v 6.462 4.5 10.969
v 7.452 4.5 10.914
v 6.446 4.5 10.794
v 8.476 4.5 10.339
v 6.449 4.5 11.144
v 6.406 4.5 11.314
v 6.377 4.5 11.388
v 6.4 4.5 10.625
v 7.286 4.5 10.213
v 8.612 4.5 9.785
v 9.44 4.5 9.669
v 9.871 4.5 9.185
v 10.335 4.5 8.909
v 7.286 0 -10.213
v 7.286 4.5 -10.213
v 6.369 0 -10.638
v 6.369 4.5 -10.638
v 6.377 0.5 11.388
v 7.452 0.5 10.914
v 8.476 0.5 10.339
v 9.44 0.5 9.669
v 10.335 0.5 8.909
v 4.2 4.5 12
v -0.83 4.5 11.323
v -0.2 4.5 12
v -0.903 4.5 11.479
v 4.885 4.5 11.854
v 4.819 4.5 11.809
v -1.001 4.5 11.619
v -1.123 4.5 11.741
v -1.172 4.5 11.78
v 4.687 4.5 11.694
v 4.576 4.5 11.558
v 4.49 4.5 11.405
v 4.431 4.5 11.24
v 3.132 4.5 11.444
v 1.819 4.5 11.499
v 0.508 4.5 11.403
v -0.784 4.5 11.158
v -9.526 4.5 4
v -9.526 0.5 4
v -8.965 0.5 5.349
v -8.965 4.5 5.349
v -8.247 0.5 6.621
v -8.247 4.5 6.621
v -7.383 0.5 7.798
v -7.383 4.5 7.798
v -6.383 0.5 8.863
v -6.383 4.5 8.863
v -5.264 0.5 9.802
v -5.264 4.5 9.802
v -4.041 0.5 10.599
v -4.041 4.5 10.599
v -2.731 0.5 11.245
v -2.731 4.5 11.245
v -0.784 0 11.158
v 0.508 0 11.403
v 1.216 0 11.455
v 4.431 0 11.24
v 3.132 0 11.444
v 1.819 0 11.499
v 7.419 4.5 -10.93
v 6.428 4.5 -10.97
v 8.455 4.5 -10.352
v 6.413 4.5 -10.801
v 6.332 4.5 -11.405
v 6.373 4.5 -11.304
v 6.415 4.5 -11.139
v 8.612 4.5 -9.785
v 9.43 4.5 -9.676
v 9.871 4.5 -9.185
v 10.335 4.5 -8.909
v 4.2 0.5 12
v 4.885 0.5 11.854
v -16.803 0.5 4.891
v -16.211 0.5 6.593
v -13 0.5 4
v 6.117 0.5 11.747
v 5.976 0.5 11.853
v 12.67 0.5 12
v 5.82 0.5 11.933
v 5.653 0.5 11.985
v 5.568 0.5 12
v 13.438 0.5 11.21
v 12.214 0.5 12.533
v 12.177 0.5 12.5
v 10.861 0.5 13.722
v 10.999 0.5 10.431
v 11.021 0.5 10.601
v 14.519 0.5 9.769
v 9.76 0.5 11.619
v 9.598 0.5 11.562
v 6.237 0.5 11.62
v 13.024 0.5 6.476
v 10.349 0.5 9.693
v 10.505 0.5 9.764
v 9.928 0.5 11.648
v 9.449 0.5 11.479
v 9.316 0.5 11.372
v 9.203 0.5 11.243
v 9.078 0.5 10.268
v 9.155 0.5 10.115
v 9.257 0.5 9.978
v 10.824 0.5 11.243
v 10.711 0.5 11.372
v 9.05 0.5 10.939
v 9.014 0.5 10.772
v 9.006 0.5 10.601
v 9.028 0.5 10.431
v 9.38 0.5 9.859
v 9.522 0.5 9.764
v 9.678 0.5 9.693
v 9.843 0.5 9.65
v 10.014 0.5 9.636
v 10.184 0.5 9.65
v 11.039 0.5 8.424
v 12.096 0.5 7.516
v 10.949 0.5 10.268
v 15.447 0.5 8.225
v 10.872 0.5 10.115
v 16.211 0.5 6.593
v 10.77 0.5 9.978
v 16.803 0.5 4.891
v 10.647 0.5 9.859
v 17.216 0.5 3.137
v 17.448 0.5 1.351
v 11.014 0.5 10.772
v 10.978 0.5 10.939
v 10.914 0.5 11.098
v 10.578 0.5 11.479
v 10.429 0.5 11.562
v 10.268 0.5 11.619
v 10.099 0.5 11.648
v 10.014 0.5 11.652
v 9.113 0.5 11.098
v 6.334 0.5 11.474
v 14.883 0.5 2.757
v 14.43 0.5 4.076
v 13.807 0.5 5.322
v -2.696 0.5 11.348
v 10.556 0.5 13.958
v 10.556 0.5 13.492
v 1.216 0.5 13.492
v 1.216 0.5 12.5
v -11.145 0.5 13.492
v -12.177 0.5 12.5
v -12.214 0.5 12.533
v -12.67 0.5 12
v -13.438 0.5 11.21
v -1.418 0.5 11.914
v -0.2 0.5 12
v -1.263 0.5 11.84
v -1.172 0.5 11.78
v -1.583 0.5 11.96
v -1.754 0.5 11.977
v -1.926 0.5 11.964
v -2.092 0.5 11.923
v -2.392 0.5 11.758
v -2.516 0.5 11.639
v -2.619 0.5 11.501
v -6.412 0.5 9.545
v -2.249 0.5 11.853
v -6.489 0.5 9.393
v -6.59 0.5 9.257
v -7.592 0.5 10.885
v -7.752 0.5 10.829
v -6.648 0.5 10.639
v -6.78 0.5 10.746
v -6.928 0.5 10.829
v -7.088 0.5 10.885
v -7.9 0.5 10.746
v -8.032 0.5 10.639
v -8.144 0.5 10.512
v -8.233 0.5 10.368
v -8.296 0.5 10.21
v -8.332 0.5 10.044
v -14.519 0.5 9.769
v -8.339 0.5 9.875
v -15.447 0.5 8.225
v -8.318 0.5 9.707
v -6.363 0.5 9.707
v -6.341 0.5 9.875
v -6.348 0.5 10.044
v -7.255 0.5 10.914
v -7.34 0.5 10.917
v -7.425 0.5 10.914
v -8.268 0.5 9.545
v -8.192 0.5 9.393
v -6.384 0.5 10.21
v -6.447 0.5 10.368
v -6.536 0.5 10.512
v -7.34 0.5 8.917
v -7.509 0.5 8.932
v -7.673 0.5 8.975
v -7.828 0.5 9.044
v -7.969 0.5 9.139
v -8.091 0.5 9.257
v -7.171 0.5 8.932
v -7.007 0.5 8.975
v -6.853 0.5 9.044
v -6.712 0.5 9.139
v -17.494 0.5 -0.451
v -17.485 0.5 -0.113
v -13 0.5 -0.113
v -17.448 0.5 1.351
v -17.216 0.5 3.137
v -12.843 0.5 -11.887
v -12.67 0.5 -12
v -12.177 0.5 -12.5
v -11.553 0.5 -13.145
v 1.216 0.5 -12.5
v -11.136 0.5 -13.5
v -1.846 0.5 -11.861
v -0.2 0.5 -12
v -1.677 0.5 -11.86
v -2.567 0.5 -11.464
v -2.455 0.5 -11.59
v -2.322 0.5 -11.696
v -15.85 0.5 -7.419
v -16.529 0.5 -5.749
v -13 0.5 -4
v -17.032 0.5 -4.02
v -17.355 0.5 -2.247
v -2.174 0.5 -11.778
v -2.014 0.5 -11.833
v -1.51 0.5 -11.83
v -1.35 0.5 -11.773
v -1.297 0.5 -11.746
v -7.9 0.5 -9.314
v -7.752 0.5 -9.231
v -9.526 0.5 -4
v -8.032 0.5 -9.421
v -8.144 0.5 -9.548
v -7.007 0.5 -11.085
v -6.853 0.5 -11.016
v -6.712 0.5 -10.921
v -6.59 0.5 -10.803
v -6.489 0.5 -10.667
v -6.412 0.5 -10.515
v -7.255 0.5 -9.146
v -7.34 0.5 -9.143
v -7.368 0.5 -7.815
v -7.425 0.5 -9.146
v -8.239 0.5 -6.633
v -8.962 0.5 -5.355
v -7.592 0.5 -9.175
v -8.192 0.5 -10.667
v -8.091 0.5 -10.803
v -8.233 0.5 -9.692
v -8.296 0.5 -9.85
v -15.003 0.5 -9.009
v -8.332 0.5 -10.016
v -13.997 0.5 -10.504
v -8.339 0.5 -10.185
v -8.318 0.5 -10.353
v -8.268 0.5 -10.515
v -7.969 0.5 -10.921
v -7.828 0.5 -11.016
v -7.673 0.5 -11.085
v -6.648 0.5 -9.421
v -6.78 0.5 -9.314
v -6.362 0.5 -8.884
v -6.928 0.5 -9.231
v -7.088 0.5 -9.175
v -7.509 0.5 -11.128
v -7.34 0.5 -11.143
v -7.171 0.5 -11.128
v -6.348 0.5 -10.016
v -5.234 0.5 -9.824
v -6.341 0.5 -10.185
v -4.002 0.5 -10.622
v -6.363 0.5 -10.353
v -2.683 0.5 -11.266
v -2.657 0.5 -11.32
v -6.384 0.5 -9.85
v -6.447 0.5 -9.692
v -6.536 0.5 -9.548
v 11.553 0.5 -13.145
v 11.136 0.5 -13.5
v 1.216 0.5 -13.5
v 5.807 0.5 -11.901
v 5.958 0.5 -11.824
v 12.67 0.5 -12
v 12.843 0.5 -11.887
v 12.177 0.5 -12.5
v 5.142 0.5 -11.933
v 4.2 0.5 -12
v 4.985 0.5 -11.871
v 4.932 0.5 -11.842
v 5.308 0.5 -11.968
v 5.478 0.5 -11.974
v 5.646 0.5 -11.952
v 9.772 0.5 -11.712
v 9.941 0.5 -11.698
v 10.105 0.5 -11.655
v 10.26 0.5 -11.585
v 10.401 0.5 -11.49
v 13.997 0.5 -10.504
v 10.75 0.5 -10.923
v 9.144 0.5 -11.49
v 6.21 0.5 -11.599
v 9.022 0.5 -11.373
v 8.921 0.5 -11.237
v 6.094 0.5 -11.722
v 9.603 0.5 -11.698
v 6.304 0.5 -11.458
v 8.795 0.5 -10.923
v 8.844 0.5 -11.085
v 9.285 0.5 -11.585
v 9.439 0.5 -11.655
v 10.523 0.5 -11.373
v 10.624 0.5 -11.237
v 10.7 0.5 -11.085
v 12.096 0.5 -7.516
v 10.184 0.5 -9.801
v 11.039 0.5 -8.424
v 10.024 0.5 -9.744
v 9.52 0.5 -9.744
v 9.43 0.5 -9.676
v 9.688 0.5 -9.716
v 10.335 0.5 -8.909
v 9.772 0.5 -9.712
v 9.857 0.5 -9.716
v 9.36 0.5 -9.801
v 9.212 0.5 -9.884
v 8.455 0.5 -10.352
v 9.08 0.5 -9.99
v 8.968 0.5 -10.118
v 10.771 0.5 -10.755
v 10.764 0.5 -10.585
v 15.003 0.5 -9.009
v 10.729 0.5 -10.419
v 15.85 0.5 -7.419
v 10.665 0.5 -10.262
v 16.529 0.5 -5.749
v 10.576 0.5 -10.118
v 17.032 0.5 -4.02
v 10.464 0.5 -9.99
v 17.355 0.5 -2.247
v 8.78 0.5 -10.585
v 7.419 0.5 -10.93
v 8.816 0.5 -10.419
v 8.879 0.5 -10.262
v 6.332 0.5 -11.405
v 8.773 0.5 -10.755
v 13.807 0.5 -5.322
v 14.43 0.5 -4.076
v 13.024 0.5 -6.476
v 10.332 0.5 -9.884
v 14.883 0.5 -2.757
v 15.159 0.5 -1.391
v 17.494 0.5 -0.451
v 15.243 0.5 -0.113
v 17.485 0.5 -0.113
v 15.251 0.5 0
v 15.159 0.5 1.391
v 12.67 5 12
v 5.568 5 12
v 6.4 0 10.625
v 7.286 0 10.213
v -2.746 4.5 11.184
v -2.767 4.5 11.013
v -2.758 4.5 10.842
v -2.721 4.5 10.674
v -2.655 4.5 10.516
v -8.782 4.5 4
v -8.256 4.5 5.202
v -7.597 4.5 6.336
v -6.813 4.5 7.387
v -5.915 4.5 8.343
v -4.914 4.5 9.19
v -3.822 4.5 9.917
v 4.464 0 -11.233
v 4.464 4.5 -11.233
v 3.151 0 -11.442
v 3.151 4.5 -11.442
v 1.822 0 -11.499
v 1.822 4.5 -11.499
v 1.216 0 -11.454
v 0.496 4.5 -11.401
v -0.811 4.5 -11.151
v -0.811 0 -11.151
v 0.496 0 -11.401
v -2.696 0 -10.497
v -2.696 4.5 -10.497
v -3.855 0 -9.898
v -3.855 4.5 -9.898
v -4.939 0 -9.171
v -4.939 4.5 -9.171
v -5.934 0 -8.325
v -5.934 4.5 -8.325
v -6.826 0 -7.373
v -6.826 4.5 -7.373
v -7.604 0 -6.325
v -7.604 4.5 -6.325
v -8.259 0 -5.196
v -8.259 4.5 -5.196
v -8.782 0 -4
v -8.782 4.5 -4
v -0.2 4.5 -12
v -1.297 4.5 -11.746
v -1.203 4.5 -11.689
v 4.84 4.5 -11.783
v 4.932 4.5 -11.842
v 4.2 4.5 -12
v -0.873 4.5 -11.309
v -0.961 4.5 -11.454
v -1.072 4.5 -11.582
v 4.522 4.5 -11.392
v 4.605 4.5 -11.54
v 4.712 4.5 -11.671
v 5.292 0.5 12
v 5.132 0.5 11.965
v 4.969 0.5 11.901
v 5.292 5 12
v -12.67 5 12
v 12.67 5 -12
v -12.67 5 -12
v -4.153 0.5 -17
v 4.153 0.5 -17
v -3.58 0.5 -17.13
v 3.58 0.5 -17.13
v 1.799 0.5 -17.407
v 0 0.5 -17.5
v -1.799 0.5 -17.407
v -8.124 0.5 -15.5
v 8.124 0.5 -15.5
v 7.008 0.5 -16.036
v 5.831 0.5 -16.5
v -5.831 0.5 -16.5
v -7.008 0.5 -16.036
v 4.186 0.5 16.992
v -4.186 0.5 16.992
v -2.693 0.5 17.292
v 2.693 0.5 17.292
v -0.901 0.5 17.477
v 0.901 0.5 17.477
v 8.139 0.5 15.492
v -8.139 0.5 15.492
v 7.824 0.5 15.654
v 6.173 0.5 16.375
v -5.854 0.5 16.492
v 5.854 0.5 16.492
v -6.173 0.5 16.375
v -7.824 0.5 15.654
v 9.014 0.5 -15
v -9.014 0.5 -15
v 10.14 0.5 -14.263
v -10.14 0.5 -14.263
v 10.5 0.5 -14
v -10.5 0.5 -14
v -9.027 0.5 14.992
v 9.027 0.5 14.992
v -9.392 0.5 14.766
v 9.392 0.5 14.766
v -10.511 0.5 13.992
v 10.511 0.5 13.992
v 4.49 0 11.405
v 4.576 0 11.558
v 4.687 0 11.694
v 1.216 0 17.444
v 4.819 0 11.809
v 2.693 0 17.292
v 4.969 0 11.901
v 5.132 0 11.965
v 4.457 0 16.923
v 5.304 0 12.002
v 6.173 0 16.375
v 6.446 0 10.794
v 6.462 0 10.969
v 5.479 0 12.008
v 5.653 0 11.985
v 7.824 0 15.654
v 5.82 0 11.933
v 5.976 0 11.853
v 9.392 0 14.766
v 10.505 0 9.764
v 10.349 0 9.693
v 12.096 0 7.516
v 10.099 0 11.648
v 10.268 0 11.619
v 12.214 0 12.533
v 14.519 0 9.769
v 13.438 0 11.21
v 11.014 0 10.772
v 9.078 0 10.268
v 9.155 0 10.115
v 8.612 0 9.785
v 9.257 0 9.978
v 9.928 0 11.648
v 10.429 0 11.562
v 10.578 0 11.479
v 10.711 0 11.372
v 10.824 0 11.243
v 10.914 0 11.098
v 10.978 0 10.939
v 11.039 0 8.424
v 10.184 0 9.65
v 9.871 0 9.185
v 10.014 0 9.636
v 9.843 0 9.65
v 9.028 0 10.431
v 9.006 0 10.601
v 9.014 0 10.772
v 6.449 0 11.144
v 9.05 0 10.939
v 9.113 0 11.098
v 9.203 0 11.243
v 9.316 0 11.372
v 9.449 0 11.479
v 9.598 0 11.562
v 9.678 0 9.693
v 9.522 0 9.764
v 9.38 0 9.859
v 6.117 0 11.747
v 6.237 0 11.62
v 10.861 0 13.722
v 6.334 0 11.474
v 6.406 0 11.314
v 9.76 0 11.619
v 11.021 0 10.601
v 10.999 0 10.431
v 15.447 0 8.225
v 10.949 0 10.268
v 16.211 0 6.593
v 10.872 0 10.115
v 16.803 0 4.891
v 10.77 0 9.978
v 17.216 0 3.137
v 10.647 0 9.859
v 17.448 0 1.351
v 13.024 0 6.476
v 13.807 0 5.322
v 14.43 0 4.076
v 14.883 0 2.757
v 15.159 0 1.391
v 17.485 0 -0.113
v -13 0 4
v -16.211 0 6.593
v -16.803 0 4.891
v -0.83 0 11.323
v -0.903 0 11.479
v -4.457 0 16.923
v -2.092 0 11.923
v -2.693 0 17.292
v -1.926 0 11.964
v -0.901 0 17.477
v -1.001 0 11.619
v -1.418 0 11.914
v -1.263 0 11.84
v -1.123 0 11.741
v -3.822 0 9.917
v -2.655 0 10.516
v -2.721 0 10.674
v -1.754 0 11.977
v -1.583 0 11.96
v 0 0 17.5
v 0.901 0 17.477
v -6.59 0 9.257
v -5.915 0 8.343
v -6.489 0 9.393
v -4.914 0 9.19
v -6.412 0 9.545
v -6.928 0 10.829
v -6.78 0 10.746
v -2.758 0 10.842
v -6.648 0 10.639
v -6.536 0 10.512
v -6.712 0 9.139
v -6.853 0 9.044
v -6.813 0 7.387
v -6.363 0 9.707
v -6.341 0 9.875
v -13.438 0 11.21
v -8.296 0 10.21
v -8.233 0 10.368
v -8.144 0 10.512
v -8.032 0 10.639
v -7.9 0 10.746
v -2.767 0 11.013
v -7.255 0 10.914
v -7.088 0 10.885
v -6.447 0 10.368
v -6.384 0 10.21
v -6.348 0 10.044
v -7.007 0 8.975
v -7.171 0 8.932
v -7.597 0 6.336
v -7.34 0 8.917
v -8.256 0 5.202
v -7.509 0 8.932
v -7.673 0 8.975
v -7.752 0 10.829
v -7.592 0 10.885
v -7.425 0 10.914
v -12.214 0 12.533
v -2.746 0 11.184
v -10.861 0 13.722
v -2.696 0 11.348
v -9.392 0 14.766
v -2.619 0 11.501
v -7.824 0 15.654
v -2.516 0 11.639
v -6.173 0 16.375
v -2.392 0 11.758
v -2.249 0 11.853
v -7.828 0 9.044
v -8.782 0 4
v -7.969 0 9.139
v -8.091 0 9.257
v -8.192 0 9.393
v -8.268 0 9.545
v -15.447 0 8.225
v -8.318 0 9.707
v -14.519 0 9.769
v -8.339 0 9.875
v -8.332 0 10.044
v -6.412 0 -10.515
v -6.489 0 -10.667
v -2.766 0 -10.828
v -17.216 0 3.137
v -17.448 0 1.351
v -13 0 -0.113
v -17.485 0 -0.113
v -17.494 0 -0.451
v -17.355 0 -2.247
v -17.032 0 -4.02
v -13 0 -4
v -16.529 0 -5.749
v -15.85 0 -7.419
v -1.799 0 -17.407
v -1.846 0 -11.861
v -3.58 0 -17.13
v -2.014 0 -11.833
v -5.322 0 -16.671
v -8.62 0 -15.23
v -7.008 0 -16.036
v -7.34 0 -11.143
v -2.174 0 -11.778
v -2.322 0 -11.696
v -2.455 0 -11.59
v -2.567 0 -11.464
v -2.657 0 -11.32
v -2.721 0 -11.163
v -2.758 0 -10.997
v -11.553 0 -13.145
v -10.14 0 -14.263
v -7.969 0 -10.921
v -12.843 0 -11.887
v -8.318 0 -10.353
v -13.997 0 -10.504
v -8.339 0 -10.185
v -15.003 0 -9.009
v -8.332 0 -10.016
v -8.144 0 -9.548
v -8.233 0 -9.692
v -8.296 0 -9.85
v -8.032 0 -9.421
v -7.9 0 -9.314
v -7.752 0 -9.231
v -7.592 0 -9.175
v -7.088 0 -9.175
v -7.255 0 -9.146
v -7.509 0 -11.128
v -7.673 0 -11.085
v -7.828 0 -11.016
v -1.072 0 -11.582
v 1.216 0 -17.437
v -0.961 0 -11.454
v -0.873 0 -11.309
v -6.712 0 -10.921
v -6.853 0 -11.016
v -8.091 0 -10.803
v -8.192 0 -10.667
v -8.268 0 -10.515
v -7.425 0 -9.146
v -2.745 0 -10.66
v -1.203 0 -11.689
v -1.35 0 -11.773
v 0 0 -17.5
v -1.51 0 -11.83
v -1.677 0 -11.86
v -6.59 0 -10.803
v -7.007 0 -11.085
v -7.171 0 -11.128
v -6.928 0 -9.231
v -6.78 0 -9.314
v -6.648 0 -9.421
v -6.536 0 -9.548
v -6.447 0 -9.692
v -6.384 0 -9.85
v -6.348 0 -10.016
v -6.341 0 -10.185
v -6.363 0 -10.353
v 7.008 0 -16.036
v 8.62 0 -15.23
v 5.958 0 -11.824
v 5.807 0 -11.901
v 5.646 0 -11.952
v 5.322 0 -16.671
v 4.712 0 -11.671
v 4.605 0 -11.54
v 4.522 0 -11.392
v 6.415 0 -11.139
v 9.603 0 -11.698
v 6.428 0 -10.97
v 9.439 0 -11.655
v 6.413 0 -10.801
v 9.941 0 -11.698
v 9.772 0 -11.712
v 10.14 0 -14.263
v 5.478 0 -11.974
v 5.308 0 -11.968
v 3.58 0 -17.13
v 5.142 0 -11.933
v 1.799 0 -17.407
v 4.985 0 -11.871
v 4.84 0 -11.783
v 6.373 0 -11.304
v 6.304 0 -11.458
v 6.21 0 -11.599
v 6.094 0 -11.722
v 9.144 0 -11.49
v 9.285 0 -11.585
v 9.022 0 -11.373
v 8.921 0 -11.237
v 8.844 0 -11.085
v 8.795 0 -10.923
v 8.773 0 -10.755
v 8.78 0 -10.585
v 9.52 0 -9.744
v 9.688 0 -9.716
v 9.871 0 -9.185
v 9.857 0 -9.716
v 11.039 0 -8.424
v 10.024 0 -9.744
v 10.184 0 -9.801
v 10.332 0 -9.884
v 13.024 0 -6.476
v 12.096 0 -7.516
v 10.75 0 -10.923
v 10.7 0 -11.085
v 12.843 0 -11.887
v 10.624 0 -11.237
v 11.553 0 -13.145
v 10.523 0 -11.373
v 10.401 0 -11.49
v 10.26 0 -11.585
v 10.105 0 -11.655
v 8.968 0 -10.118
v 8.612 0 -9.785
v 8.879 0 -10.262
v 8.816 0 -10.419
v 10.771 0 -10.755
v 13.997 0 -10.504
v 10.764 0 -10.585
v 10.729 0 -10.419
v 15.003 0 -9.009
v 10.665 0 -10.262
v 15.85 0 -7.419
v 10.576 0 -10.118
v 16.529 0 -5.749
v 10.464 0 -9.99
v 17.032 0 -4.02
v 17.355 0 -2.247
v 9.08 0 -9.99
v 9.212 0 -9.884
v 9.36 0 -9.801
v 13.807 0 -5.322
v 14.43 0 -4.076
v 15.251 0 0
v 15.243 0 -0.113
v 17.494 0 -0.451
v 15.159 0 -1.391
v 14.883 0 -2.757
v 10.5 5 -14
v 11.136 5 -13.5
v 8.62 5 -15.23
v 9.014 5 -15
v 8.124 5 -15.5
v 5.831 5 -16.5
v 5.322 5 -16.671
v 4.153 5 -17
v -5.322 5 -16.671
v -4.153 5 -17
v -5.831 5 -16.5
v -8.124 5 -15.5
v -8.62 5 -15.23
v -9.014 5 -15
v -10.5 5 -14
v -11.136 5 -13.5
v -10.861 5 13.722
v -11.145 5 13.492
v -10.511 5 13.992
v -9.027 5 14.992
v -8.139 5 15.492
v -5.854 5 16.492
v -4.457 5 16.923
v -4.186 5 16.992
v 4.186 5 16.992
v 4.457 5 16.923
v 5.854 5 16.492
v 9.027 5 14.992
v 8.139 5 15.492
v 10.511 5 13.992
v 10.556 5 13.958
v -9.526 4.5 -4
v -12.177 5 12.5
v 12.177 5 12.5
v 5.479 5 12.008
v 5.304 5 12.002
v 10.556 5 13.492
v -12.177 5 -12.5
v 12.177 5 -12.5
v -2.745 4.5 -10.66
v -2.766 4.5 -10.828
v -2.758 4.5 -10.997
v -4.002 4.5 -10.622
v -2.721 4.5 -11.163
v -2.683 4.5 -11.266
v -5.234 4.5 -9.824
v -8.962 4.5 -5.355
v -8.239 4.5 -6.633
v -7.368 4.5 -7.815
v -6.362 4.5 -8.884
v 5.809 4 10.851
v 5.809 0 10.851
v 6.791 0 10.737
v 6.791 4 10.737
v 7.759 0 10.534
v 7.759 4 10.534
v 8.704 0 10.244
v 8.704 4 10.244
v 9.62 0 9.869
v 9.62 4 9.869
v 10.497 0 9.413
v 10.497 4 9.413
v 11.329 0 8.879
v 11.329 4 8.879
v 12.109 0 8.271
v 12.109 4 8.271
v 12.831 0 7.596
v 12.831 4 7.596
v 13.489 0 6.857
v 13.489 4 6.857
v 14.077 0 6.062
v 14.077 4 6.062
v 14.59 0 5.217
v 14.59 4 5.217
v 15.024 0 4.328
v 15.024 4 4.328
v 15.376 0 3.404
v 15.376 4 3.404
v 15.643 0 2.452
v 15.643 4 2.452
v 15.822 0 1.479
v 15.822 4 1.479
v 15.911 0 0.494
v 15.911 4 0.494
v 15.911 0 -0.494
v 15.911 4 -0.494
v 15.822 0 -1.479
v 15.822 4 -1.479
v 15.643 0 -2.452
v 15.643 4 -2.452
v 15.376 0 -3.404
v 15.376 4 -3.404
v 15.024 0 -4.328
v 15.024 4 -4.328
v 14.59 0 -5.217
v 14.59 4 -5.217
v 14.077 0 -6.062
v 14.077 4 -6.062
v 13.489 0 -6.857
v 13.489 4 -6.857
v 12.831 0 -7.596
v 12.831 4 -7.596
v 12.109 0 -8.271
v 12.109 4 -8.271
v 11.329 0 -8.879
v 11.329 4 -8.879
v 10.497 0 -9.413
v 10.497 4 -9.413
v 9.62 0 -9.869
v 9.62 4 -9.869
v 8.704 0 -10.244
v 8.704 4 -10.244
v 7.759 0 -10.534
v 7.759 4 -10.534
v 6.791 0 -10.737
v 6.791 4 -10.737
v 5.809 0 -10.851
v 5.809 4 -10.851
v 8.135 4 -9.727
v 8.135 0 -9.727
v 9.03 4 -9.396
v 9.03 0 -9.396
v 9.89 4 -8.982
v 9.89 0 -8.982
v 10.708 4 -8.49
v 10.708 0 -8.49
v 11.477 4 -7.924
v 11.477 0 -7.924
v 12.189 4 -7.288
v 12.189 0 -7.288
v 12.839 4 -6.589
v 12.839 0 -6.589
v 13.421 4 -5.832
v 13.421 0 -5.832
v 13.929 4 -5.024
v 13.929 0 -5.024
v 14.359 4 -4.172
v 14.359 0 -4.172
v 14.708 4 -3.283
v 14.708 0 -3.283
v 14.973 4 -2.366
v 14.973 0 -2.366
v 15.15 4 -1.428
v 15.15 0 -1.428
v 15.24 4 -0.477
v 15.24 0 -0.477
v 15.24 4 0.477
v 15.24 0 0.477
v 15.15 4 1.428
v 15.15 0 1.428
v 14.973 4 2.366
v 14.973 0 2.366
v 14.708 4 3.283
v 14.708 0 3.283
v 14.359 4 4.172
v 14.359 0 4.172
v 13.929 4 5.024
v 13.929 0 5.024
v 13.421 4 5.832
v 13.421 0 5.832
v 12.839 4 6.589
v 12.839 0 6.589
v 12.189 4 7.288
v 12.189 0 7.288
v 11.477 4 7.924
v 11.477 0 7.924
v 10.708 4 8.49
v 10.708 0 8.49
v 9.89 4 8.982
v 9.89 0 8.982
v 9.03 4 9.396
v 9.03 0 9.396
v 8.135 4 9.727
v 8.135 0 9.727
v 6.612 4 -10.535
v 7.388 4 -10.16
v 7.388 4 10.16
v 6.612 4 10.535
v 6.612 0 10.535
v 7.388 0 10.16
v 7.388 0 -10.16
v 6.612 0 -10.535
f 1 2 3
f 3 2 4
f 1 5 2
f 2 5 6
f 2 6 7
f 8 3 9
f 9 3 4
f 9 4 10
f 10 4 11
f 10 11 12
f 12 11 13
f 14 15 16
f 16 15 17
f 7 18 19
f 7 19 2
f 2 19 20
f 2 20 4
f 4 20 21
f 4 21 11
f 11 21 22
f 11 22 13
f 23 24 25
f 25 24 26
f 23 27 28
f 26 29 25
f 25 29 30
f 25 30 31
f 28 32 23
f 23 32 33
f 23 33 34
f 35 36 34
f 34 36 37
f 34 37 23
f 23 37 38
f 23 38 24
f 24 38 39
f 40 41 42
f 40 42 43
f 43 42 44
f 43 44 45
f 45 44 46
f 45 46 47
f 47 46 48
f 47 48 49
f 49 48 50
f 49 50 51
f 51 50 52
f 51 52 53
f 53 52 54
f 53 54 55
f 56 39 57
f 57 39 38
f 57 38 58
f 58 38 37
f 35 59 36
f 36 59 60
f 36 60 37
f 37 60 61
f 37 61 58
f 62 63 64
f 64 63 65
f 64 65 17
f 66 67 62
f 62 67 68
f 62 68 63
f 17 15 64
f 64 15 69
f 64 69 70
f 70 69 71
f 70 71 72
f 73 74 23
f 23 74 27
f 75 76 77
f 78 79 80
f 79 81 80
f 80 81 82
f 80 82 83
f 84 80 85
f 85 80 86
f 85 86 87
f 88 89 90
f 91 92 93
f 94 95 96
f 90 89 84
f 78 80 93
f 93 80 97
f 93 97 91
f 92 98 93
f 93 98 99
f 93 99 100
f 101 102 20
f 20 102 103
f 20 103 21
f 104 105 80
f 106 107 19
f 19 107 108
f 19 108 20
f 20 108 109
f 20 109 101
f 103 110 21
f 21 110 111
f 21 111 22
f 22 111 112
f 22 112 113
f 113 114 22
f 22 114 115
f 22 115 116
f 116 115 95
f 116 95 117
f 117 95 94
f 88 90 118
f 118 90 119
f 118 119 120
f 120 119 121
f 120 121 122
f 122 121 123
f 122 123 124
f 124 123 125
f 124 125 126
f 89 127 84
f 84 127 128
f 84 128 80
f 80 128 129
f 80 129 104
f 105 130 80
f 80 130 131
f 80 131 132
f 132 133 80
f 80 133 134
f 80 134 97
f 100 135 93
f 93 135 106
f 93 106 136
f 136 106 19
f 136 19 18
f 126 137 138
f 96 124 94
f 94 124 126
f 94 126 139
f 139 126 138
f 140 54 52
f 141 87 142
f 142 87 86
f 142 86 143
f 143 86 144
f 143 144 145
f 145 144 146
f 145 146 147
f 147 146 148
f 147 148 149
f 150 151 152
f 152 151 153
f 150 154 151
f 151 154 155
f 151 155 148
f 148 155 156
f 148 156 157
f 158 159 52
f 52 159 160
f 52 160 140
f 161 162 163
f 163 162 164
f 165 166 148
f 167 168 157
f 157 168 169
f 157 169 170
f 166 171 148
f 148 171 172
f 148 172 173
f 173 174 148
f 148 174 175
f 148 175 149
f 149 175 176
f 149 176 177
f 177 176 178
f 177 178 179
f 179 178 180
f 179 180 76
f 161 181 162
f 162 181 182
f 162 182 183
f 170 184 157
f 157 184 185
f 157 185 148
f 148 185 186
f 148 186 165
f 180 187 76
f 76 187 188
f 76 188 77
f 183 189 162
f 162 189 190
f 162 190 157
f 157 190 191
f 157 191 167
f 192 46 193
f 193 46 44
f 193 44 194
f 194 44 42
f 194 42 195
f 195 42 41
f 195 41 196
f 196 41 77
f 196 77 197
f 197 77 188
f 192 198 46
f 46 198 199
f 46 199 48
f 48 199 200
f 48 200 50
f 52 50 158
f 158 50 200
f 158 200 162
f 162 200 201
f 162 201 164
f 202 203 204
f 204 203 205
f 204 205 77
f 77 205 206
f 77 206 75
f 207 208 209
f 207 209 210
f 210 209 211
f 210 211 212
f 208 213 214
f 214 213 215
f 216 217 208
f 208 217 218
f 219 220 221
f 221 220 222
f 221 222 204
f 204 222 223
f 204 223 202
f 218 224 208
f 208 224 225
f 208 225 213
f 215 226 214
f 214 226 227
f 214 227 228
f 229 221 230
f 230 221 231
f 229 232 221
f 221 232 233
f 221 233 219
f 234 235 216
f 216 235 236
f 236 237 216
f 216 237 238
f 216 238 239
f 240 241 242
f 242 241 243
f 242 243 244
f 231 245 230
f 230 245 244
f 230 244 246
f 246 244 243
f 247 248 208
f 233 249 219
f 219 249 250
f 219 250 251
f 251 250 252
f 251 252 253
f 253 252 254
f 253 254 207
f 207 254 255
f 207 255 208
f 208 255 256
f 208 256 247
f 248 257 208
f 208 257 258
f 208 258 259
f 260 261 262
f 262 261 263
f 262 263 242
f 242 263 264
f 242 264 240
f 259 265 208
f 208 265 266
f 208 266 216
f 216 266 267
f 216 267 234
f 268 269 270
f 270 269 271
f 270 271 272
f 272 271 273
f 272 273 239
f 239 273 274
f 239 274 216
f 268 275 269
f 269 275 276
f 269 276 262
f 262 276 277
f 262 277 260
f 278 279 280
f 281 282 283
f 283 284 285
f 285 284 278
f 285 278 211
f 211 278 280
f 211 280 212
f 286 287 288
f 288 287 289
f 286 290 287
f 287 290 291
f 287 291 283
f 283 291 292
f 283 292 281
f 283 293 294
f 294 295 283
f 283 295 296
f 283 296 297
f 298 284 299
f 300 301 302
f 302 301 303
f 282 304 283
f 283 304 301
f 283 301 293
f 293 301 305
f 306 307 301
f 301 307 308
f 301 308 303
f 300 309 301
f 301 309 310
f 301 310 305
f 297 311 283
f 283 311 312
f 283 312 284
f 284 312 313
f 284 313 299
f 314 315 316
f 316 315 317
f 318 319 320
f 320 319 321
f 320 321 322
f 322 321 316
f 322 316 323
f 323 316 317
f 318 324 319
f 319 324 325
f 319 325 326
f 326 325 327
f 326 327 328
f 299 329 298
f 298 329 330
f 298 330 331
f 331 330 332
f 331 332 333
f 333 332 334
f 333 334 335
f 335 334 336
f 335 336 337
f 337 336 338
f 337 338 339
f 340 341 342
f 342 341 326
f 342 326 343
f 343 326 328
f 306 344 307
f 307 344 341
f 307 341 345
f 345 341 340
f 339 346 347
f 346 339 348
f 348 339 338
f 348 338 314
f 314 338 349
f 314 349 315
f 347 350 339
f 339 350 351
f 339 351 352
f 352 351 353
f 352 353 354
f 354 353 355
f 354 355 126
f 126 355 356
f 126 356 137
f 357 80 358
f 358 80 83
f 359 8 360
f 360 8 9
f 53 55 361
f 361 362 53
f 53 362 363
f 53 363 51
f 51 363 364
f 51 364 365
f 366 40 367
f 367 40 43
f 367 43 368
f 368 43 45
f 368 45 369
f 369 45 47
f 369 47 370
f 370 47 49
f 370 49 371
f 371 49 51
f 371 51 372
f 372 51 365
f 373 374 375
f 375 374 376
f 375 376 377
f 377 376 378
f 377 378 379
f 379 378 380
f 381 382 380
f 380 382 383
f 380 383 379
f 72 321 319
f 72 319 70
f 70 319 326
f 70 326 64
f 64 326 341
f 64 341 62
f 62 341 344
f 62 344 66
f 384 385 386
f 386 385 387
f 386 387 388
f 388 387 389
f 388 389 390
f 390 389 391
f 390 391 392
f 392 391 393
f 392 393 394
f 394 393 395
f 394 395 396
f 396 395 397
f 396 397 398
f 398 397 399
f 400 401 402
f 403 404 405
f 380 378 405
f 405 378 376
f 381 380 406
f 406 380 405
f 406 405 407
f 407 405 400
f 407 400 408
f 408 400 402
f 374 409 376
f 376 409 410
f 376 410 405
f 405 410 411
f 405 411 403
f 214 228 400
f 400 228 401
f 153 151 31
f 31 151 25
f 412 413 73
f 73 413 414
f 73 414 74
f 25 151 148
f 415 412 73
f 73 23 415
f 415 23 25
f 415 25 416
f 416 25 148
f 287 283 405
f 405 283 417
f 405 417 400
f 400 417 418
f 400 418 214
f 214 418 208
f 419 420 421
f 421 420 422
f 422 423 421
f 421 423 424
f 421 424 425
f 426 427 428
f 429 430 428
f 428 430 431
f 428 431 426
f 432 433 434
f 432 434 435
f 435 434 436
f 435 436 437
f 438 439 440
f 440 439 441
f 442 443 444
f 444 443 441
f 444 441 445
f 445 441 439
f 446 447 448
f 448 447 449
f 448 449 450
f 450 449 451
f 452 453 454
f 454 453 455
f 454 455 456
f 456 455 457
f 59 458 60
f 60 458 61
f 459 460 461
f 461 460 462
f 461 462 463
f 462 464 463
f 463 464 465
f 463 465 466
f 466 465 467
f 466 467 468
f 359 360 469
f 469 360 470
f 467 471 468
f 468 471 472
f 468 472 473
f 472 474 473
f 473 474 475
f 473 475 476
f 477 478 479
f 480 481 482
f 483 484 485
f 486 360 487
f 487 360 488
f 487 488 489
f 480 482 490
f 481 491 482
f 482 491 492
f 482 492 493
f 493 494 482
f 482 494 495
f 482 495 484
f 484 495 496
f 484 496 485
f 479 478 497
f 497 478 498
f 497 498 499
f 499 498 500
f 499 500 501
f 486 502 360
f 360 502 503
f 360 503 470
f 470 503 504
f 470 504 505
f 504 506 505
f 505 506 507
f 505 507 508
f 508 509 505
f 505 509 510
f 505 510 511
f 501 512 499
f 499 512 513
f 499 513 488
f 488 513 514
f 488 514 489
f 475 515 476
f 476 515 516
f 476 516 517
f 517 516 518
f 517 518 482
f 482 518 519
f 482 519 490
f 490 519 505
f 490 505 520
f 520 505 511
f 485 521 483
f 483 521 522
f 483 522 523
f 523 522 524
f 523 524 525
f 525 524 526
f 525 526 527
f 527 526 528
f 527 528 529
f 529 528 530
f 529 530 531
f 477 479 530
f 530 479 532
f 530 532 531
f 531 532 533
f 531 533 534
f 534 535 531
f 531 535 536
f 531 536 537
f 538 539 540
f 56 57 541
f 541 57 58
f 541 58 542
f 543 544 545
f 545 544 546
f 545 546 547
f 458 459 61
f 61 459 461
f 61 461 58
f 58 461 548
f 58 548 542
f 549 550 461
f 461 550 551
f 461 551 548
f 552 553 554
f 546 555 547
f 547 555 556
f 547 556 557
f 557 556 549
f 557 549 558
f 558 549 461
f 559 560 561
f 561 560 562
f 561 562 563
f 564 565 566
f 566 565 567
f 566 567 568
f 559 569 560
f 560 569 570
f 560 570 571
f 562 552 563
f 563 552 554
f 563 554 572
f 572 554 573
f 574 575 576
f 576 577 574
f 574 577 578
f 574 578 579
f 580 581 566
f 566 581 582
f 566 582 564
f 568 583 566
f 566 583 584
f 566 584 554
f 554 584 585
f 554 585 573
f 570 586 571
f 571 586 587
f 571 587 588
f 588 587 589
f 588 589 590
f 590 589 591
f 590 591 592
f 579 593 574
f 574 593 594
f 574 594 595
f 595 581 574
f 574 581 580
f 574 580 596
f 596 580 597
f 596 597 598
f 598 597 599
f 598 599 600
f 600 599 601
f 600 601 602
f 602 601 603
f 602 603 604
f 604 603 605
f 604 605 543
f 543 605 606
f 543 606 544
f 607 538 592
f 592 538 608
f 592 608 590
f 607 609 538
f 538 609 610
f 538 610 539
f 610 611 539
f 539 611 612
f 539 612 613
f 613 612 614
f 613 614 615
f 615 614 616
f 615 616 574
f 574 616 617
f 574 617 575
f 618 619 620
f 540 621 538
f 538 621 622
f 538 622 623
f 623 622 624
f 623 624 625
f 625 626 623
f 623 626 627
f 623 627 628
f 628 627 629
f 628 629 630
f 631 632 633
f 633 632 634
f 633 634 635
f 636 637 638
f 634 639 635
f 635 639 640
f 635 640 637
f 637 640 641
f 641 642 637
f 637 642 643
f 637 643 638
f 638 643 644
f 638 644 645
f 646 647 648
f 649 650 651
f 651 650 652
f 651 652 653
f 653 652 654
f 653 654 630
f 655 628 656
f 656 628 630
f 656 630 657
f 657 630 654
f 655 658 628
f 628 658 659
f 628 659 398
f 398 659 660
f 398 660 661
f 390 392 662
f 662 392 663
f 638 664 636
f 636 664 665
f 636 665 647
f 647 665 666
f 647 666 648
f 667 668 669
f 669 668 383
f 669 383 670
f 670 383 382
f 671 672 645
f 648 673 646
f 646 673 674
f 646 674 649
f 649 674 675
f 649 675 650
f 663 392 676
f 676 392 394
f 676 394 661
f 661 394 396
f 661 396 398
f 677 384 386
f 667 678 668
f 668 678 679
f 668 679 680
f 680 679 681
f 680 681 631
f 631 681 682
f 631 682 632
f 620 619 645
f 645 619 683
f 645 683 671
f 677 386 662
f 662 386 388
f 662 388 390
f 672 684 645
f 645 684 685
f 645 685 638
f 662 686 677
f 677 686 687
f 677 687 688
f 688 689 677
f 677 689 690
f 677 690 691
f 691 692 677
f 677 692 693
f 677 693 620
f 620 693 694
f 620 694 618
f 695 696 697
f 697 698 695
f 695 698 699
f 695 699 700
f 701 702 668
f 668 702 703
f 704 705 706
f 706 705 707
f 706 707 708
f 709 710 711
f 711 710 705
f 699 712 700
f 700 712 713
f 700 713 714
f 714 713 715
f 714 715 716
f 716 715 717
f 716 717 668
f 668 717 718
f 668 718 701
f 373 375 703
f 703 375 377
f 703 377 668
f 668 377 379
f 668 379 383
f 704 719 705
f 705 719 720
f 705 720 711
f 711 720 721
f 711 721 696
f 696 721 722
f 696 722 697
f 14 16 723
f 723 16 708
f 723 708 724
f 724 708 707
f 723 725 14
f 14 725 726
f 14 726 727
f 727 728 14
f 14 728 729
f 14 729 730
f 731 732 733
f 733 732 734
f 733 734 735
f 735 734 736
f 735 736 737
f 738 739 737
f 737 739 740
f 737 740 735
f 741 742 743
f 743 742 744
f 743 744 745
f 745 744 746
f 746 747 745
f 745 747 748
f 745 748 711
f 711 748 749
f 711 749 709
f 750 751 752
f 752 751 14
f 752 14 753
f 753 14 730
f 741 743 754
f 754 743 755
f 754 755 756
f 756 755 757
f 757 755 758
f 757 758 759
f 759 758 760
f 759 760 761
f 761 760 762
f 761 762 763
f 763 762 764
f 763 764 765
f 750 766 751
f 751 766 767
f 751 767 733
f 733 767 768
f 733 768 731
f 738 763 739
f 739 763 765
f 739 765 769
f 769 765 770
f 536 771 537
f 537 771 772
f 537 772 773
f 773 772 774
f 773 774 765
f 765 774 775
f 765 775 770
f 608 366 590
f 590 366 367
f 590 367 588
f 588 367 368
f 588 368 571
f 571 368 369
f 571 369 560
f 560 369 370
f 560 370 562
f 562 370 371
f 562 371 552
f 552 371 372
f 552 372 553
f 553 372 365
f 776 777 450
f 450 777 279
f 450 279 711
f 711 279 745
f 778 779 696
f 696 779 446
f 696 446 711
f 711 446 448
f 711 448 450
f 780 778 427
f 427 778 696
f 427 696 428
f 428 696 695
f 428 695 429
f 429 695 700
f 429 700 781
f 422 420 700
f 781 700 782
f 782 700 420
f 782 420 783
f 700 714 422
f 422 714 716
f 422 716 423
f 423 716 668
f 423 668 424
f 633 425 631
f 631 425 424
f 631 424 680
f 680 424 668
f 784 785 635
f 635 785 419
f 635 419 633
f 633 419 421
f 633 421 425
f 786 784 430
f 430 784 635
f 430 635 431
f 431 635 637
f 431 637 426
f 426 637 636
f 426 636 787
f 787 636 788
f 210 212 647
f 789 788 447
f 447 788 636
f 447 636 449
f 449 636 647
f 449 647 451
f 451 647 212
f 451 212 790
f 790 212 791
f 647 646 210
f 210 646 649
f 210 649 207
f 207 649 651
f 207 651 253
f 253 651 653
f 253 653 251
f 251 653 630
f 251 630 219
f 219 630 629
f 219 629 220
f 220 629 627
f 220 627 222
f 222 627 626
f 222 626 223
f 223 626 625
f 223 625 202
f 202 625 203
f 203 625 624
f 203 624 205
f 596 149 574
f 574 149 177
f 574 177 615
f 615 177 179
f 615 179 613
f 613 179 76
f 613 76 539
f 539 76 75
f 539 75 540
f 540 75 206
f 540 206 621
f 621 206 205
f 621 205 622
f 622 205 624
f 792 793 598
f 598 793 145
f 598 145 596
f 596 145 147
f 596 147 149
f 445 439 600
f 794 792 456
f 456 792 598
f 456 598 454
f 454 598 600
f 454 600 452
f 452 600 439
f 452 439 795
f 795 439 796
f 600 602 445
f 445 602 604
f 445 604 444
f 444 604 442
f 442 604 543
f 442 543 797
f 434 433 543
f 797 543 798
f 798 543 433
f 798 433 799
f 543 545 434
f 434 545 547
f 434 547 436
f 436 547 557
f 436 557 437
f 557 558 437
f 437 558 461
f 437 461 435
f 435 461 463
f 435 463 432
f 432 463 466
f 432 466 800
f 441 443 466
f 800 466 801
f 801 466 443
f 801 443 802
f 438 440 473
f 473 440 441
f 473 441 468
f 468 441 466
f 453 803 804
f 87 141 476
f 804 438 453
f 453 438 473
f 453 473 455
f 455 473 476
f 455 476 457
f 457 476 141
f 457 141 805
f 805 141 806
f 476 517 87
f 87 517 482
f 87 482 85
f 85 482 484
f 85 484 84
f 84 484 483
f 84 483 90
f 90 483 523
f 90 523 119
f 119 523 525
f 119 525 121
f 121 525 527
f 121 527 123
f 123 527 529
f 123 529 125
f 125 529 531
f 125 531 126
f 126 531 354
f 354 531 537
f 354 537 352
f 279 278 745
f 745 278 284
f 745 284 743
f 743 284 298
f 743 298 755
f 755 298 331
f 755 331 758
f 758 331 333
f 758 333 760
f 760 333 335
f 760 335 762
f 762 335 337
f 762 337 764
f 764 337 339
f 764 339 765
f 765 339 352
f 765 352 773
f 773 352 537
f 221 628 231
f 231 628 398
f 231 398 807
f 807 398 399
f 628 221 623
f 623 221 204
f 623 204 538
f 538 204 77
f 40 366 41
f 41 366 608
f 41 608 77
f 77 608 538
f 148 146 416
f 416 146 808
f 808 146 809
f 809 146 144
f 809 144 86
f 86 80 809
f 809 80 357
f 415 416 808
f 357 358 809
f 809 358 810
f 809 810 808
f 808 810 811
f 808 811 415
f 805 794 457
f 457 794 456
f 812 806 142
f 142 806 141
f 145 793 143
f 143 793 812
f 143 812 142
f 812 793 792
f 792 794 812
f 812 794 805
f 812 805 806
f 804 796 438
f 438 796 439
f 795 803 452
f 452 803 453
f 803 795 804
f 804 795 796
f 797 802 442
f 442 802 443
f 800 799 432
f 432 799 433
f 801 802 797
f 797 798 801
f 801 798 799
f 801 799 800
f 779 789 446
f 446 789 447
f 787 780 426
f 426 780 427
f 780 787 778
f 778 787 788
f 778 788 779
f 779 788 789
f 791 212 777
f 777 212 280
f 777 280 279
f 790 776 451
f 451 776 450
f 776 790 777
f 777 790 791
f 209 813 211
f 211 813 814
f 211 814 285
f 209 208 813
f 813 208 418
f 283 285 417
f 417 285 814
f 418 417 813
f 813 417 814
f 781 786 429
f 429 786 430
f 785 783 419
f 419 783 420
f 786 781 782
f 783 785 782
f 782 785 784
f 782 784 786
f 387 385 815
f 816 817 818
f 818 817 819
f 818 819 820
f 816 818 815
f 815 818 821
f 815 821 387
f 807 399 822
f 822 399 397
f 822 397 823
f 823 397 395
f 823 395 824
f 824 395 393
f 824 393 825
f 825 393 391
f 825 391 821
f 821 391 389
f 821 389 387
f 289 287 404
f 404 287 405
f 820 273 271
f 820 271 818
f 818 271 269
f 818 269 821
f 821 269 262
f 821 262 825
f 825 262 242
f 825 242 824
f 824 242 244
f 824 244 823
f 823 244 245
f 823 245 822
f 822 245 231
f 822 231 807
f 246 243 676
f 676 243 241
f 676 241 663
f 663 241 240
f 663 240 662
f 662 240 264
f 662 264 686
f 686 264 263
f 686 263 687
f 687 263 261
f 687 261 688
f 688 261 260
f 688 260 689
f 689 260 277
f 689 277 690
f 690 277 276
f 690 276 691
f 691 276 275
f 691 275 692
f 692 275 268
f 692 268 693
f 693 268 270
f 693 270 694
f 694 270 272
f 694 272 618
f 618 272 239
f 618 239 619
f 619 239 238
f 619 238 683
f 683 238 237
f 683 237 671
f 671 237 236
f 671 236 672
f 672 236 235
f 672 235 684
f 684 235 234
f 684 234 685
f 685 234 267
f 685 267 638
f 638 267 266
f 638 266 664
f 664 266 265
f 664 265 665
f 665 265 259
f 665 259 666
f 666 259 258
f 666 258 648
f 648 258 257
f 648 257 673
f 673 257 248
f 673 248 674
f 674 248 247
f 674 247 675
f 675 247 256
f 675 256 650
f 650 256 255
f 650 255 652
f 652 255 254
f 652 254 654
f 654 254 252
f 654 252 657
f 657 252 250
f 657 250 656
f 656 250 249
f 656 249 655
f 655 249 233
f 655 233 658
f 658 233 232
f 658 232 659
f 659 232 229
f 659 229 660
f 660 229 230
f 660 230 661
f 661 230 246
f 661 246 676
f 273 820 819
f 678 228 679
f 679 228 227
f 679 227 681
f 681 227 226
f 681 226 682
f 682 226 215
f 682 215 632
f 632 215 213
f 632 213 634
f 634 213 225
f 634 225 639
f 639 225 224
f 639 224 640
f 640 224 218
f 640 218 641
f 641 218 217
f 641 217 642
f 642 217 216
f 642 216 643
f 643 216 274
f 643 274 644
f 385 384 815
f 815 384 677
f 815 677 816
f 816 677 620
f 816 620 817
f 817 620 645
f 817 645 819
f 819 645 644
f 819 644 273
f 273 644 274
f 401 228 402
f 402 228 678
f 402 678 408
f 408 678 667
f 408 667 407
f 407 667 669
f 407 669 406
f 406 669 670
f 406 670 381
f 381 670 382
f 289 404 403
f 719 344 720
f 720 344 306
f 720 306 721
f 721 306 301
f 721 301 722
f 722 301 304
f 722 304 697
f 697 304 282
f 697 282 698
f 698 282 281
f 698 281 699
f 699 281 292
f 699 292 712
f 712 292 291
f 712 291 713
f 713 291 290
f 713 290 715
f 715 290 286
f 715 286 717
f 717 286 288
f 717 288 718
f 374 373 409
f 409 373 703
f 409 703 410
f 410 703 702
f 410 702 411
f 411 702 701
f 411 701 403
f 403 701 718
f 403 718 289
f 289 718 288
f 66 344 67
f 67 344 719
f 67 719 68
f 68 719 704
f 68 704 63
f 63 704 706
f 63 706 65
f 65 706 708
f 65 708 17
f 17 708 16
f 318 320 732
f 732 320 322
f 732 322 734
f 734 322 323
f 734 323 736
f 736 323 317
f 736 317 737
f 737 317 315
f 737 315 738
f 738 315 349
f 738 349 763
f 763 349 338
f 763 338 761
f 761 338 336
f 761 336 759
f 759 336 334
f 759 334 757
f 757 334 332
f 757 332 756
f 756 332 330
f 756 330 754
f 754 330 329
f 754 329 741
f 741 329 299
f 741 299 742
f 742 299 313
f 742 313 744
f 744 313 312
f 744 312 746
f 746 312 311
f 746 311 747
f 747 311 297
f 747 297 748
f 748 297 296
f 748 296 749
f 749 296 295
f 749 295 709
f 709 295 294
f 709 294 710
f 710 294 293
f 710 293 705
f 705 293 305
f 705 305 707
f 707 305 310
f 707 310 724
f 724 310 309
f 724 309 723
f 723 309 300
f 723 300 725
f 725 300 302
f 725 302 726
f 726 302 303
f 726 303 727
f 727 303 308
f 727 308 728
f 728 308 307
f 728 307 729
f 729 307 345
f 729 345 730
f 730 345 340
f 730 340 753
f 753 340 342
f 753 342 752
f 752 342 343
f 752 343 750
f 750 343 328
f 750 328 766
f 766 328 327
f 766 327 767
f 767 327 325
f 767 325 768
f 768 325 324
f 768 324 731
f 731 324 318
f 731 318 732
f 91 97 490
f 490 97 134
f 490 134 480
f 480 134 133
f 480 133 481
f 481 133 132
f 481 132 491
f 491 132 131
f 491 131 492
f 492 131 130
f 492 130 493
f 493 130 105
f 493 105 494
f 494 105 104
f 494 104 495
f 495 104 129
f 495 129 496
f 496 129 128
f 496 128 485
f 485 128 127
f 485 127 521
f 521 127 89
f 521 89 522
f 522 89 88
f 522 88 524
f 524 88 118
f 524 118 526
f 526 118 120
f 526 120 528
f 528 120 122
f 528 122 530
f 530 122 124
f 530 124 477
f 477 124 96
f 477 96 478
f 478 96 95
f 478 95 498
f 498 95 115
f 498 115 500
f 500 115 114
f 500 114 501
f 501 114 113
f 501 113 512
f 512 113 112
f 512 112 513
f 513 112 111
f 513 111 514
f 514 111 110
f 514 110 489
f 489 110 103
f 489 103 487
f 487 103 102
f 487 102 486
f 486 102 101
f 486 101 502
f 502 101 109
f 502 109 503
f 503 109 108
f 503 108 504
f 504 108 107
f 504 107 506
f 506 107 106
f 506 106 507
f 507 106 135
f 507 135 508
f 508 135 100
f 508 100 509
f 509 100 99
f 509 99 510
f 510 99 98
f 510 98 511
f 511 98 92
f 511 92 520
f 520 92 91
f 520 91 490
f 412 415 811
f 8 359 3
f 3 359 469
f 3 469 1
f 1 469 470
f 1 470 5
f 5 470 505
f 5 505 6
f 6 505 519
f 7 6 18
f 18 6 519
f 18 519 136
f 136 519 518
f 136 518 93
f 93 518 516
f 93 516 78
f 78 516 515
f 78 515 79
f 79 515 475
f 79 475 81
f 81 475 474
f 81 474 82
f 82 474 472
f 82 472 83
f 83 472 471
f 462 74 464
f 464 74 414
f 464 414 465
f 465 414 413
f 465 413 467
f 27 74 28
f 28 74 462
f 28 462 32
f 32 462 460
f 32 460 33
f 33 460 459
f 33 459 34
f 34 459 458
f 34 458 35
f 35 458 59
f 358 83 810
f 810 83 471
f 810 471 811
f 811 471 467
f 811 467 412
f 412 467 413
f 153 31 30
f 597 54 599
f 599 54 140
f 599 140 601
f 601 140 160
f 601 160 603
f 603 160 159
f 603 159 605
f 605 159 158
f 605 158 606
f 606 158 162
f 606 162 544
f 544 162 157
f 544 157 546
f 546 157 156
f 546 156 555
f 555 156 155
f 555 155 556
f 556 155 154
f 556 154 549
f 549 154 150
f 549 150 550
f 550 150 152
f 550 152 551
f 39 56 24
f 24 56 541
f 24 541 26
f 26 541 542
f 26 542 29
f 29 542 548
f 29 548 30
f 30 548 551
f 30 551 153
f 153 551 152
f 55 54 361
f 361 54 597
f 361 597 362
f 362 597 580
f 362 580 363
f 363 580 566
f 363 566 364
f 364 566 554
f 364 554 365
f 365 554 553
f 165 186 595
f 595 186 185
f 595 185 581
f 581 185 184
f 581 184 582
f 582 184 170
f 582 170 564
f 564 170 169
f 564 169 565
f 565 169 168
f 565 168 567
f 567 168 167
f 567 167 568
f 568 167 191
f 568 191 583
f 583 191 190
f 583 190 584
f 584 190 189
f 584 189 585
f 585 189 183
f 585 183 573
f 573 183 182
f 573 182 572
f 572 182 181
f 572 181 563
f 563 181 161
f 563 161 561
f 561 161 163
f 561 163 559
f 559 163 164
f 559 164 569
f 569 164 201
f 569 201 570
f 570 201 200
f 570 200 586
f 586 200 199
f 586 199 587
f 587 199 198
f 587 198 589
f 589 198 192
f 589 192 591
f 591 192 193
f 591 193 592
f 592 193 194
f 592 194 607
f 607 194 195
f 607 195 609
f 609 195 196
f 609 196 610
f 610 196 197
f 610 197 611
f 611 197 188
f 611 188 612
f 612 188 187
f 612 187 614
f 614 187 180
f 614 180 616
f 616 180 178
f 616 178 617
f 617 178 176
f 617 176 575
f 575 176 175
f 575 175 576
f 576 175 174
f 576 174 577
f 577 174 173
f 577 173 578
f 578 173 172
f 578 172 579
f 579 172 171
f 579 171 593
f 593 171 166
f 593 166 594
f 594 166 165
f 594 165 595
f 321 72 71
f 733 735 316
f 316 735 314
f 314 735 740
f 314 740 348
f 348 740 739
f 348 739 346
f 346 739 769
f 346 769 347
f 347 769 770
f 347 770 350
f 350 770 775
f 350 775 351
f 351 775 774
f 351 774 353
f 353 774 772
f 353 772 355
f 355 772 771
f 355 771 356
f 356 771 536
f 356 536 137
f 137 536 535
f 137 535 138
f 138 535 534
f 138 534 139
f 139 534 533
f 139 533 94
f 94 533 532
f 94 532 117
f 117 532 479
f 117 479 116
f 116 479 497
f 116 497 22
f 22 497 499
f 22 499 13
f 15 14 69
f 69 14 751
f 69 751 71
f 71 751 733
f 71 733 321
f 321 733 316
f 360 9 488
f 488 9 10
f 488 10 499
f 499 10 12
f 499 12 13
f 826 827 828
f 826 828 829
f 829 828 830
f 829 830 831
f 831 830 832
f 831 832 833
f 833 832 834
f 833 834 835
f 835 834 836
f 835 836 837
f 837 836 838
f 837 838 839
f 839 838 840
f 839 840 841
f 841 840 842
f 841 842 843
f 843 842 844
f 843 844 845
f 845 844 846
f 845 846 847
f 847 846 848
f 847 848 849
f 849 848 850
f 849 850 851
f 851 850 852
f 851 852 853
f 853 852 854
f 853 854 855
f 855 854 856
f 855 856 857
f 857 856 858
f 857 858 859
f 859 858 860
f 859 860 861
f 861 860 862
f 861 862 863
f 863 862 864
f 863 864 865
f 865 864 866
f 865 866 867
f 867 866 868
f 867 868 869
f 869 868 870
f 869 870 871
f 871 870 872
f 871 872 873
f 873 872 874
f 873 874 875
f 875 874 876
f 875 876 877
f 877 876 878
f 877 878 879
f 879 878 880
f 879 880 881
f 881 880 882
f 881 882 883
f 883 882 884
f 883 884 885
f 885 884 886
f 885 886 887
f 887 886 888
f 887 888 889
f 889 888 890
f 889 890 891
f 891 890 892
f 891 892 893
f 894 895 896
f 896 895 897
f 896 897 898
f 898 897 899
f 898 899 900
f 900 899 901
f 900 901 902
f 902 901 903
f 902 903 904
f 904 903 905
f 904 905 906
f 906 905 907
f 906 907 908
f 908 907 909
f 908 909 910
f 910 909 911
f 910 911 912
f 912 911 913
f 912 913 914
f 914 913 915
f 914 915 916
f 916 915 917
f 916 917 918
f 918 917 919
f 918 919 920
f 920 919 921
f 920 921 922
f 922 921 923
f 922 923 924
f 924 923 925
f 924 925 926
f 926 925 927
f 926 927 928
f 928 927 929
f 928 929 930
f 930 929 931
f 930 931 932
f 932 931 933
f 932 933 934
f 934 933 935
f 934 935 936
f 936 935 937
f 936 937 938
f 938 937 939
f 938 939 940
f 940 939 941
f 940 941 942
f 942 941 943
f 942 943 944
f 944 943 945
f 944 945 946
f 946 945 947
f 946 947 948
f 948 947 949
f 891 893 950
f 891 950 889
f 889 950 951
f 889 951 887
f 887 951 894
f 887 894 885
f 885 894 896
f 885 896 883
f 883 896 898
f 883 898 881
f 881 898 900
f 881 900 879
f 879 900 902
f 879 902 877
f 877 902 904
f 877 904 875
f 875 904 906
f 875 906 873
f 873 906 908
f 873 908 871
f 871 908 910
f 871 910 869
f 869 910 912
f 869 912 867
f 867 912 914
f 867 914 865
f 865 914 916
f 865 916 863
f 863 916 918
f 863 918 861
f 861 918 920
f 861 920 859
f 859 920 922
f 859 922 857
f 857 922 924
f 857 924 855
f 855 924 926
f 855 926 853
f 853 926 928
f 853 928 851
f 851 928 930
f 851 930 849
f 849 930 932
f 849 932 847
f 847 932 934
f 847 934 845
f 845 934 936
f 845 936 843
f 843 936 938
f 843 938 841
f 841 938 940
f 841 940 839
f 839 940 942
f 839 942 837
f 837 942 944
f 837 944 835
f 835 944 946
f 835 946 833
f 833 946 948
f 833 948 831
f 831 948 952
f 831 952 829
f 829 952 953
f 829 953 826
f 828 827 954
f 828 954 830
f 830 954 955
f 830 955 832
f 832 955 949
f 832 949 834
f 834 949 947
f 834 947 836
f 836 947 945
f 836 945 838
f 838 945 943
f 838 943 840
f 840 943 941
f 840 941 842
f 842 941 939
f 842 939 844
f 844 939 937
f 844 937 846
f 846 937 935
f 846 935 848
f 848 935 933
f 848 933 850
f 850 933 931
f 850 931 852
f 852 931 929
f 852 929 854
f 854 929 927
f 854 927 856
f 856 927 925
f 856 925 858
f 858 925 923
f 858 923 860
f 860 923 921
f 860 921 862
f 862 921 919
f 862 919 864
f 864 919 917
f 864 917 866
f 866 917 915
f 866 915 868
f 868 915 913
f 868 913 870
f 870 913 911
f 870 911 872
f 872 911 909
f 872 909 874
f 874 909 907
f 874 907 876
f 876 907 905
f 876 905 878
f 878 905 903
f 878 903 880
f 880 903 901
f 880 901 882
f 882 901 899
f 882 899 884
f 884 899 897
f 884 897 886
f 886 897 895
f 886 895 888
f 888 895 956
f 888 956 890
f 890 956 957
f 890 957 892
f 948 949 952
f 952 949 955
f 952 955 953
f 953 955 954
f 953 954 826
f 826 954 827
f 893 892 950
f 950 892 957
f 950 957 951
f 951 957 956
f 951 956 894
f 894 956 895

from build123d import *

# Parameters (mm, degrees)
SKETCH1_R                = 17.5
BOSS_EXTRUDE1_DEPTH      = 0.5
SKETCH2_R                = 11.5
CUT_EXTRUDE1_DEPTH       = 0.5
SKETCH3_W                = 15
SKETCH3_H                = 8
CUT_EXTRUDE4_DEPTH       = 2.5
BOSS_EXTRUDE6_DEPTH      = 4.5
BOSS_EXTRUDE7_START      = 4
SKETCH9_R                = 12.2
SKETCH9_R_2              = 11.5
BOSS_EXTRUDE7_DEPTH      = 4
SKETCH10_W               = 4.218070674
SKETCH10_H               = 8
CUT_EXTRUDE5_DEPTH       = 6
SKETCH11_R               = 1
SKETCH11_R_2             = 0.998714777
SKETCH11_R_3             = 0.998671431
SKETCH11_R_4             = 1.032567444
SKETCH11_R_5             = 1.008118798
CUT_EXTRUDE7_DEPTH       = 100
SKETCH12_R               = 10.530486407
CUT_EXTRUDE8_DEPTH       = 10
BOSS_EXTRUDE8_DEPTH      = 1
BOSS_EXTRUDE8_DEPTH_BACK = 4
SKETCH13_R               = 10.877782244
SKETCH13_R_2             = 10.206062314
SKETCH15_R               = 24.190565002
CUT_EXTRUDE9_DEPTH       = 1
CUT_EXTRUDE10_START      = -10
SKETCH16_R               = 11.5
CUT_EXTRUDE10_DEPTH      = 10


with BuildPart() as part:
    # Sketch1 → Boss-Extrude1 (new body)
    with BuildSketch(Plane(origin=(0, 0, 0), x_dir=(1, 0, 0), z_dir=(0, 1, 0))):
        with Locations(Location((0, 0, 0), (0, 0, 270))):
            Circle(SKETCH1_R)
    extrude(amount=BOSS_EXTRUDE1_DEPTH)

    # Sketch2 → Cut-Extrude1 (cut)
    with BuildSketch(Plane(origin=(0, 0.5, 0), x_dir=(1, 0, 0), z_dir=(0, 1, 0))):
        with Locations(Location((2, 0, 0), (0, 0, 270))):
            Circle(SKETCH2_R)
    extrude(amount=-CUT_EXTRUDE1_DEPTH, mode=Mode.SUBTRACT)

    # Sketch3 → Cut-Extrude4 (cut)
    with BuildSketch(Plane(origin=(0, 0, 0), x_dir=(1, 0, 0), z_dir=(0, 1, 0))):
        with Locations((-5.5, 0)):
            Rectangle(SKETCH3_W, SKETCH3_H)
    extrude(amount=CUT_EXTRUDE4_DEPTH, mode=Mode.SUBTRACT)

    # Sketch7 → Boss-Extrude6 (add)
    with BuildSketch(Plane(origin=(0, 0.5, 0), x_dir=(1, 0, 0), z_dir=(0, 1, 0))):
        with BuildLine():
            Line((-11.135528726, 13.5), (11.135528726, 13.5))
            ThreePointArc((11.135528726, 13.5), (10.820652744, 13.753671299), (10.5, 14))
            Line((10.5, 14), (-10.5, 14))
            ThreePointArc((-10.5, 14), (-10.820652744, 13.753671299), (-11.135528726, 13.5))
        make_face()
        with BuildLine():
            Line((12.176537068, 12.5), (-12.176537068, 12.5))
            ThreePointArc((-12.176537068, 12.5), (-12.42556977, 12.252480192), (-12.669572012, 12))
            Line((-12.669572012, 12), (12.669572012, 12))
            ThreePointArc((12.669572012, 12), (12.42556977, 12.252480192), (12.176537068, 12.5))
        make_face()
        with BuildLine():
            ThreePointArc((-11.145229996, -13.491992008), (-10.830835088, -13.74565427), (-10.510668849, -13.991992008))
            Line((-10.510668849, -13.991992008), (10.510668849, -13.991992008))
            ThreePointArc((10.510668849, -13.991992008), (10.53333572, -13.974936086), (10.555974914, -13.957843444))
            Line((10.555974914, -13.957843444), (10.555974914, -13.491992008))
            Line((10.555974914, -13.491992008), (-11.145229996, -13.491992008))
        make_face()
        with BuildLine():
            Line((-9.013878189, 15), (9.013878189, 15))
            ThreePointArc((9.013878189, 15), (8.572604405, 15.256488905), (8.124038405, 15.5))
            Line((8.124038405, 15.5), (-8.124038405, 15.5))
            ThreePointArc((-8.124038405, 15.5), (-8.572604405, 15.256488905), (-9.013878189, 15))
        make_face()
        with BuildLine():
            ThreePointArc((-9.027190906, -14.991992008), (-8.586884855, -15.248455938), (-8.139298719, -15.491992008))
            Line((-8.139298719, -15.491992008), (8.139298719, -15.491992008))
            ThreePointArc((8.139298719, -15.491992008), (8.586884855, -15.248455938), (9.027190906, -14.991992008))
            Line((9.027190906, -14.991992008), (-9.027190906, -14.991992008))
        make_face()
        with BuildLine():
            Line((-5.830951895, 16.5), (5.830951895, 16.5))
            ThreePointArc((5.830951895, 16.5), (4.998387844, 16.770990399), (4.153311931, 17))
            Line((4.153311931, 17), (-4.153311931, 17))
            ThreePointArc((-4.153311931, 17), (-4.998387844, 16.770990399), (-5.830951895, 16.5))
        make_face()
        with BuildLine():
            Line((5.853562985, -16.491992008), (-5.853562985, -16.491992008))
            ThreePointArc((-5.853562985, -16.491992008), (-5.025979841, -16.762742217), (-4.185953609, -16.991992008))
            Line((-4.185953609, -16.991992008), (4.185953609, -16.991992008))
            ThreePointArc((4.185953609, -16.991992008), (5.025979841, -16.762742217), (5.853562985, -16.491992008))
        make_face()
        with BuildLine():
            Line((12.669572012, -12), (-12.669572012, -12))
            ThreePointArc((-12.669572012, -12), (-12.42556977, -12.252480192), (-12.176537068, -12.5))
            Line((-12.176537068, -12.5), (12.176537068, -12.5))
            ThreePointArc((12.176537068, -12.5), (12.42556977, -12.252480192), (12.669572012, -12))
        make_face()
    extrude(amount=BOSS_EXTRUDE6_DEPTH)

    # Sketch9 → Boss-Extrude7 (add)
    with BuildSketch(Plane(origin=(0, 0.5, 0), x_dir=(1, 0, 0), z_dir=(0, 1, 0)).offset(BOSS_EXTRUDE7_START)):
        with Locations((2, 0)):
            Circle(SKETCH9_R)
        with Locations(Location((2, 0, 0), (0, 0, 270))):
            Circle(SKETCH9_R_2, mode=Mode.SUBTRACT)
    extrude(amount=-BOSS_EXTRUDE7_DEPTH)

    # Sketch10 → Cut-Extrude5 (cut)
    with BuildSketch(Plane.XZ):
        with Locations((-10.890964663, 0)):
            Rectangle(SKETCH10_W, SKETCH10_H)
    extrude(amount=-CUT_EXTRUDE5_DEPTH, mode=Mode.SUBTRACT)

    # Sketch11 → Cut-Extrude7 (cut)
    with BuildSketch(Plane.XZ):
        with Locations(Location((-7.340296828, -10.142549821, 0), (0, 0, 270))):
            Circle(SKETCH11_R)
        with Locations((-1.767569388, -10.865331146)):
            Circle(SKETCH11_R_2)
        with Locations((5.429630438, -10.976685978)):
            Circle(SKETCH11_R_3)
        with Locations(Location((-7.340296828, 9.917402438, 0), (0, 0, 270))):
            Circle(SKETCH11_R)
        with Locations((5.429630438, 10.976685978)):
            Circle(SKETCH11_R_4)
        with Locations((-1.767569388, 10.976685978)):
            Circle(SKETCH11_R)
        with Locations(Location((10.013638897, 10.643798729, 0), (0, 0, 270))):
            Circle(SKETCH11_R_5)
        with Locations(Location((9.772353005, -10.712194768, 0), (0, 0, 270))):
            Circle(SKETCH11_R)
    extrude(amount=-CUT_EXTRUDE7_DEPTH, mode=Mode.SUBTRACT)

    # Sketch12 → Cut-Extrude8 (cut)
    with BuildSketch(Plane.XZ):
        with Locations((4.720351271, 0)):
            Circle(SKETCH12_R)
    extrude(amount=-CUT_EXTRUDE8_DEPTH, mode=Mode.SUBTRACT)


with BuildPart() as body_2:
    # Sketch13 → Boss-Extrude8 (new, two sides: drawn at the far end of the back side and taken through both)
    with BuildSketch(Plane(origin=(0, 0, 0), x_dir=(-1, 0, 0), z_dir=(0, -1, 0)).offset(-BOSS_EXTRUDE8_DEPTH_BACK)):
        with Locations(Location((-5.044775364, 0, 0), (0, 0, 90))):
            Circle(SKETCH13_R)
        with Locations(Location((-5.044775364, 0, 0), (0, 0, 90))):
            Circle(SKETCH13_R_2, mode=Mode.SUBTRACT)
    extrude(amount=BOSS_EXTRUDE8_DEPTH + BOSS_EXTRUDE8_DEPTH_BACK)

    # Sketch15 → Cut-Extrude9 (cut)
    with BuildSketch(Plane.XZ.offset(1)):
        Circle(SKETCH15_R)
    extrude(amount=-CUT_EXTRUDE9_DEPTH, mode=Mode.SUBTRACT)

    # Sketch16 → Cut-Extrude10 (cut)
    with BuildSketch(Plane.XZ.offset(CUT_EXTRUDE10_START)):
        with Locations((2, 0)):
            Circle(SKETCH16_R)
    extrude(amount=CUT_EXTRUDE10_DEPTH, mode=Mode.SUBTRACT)


solid = Compound([part.part, body_2.part])
